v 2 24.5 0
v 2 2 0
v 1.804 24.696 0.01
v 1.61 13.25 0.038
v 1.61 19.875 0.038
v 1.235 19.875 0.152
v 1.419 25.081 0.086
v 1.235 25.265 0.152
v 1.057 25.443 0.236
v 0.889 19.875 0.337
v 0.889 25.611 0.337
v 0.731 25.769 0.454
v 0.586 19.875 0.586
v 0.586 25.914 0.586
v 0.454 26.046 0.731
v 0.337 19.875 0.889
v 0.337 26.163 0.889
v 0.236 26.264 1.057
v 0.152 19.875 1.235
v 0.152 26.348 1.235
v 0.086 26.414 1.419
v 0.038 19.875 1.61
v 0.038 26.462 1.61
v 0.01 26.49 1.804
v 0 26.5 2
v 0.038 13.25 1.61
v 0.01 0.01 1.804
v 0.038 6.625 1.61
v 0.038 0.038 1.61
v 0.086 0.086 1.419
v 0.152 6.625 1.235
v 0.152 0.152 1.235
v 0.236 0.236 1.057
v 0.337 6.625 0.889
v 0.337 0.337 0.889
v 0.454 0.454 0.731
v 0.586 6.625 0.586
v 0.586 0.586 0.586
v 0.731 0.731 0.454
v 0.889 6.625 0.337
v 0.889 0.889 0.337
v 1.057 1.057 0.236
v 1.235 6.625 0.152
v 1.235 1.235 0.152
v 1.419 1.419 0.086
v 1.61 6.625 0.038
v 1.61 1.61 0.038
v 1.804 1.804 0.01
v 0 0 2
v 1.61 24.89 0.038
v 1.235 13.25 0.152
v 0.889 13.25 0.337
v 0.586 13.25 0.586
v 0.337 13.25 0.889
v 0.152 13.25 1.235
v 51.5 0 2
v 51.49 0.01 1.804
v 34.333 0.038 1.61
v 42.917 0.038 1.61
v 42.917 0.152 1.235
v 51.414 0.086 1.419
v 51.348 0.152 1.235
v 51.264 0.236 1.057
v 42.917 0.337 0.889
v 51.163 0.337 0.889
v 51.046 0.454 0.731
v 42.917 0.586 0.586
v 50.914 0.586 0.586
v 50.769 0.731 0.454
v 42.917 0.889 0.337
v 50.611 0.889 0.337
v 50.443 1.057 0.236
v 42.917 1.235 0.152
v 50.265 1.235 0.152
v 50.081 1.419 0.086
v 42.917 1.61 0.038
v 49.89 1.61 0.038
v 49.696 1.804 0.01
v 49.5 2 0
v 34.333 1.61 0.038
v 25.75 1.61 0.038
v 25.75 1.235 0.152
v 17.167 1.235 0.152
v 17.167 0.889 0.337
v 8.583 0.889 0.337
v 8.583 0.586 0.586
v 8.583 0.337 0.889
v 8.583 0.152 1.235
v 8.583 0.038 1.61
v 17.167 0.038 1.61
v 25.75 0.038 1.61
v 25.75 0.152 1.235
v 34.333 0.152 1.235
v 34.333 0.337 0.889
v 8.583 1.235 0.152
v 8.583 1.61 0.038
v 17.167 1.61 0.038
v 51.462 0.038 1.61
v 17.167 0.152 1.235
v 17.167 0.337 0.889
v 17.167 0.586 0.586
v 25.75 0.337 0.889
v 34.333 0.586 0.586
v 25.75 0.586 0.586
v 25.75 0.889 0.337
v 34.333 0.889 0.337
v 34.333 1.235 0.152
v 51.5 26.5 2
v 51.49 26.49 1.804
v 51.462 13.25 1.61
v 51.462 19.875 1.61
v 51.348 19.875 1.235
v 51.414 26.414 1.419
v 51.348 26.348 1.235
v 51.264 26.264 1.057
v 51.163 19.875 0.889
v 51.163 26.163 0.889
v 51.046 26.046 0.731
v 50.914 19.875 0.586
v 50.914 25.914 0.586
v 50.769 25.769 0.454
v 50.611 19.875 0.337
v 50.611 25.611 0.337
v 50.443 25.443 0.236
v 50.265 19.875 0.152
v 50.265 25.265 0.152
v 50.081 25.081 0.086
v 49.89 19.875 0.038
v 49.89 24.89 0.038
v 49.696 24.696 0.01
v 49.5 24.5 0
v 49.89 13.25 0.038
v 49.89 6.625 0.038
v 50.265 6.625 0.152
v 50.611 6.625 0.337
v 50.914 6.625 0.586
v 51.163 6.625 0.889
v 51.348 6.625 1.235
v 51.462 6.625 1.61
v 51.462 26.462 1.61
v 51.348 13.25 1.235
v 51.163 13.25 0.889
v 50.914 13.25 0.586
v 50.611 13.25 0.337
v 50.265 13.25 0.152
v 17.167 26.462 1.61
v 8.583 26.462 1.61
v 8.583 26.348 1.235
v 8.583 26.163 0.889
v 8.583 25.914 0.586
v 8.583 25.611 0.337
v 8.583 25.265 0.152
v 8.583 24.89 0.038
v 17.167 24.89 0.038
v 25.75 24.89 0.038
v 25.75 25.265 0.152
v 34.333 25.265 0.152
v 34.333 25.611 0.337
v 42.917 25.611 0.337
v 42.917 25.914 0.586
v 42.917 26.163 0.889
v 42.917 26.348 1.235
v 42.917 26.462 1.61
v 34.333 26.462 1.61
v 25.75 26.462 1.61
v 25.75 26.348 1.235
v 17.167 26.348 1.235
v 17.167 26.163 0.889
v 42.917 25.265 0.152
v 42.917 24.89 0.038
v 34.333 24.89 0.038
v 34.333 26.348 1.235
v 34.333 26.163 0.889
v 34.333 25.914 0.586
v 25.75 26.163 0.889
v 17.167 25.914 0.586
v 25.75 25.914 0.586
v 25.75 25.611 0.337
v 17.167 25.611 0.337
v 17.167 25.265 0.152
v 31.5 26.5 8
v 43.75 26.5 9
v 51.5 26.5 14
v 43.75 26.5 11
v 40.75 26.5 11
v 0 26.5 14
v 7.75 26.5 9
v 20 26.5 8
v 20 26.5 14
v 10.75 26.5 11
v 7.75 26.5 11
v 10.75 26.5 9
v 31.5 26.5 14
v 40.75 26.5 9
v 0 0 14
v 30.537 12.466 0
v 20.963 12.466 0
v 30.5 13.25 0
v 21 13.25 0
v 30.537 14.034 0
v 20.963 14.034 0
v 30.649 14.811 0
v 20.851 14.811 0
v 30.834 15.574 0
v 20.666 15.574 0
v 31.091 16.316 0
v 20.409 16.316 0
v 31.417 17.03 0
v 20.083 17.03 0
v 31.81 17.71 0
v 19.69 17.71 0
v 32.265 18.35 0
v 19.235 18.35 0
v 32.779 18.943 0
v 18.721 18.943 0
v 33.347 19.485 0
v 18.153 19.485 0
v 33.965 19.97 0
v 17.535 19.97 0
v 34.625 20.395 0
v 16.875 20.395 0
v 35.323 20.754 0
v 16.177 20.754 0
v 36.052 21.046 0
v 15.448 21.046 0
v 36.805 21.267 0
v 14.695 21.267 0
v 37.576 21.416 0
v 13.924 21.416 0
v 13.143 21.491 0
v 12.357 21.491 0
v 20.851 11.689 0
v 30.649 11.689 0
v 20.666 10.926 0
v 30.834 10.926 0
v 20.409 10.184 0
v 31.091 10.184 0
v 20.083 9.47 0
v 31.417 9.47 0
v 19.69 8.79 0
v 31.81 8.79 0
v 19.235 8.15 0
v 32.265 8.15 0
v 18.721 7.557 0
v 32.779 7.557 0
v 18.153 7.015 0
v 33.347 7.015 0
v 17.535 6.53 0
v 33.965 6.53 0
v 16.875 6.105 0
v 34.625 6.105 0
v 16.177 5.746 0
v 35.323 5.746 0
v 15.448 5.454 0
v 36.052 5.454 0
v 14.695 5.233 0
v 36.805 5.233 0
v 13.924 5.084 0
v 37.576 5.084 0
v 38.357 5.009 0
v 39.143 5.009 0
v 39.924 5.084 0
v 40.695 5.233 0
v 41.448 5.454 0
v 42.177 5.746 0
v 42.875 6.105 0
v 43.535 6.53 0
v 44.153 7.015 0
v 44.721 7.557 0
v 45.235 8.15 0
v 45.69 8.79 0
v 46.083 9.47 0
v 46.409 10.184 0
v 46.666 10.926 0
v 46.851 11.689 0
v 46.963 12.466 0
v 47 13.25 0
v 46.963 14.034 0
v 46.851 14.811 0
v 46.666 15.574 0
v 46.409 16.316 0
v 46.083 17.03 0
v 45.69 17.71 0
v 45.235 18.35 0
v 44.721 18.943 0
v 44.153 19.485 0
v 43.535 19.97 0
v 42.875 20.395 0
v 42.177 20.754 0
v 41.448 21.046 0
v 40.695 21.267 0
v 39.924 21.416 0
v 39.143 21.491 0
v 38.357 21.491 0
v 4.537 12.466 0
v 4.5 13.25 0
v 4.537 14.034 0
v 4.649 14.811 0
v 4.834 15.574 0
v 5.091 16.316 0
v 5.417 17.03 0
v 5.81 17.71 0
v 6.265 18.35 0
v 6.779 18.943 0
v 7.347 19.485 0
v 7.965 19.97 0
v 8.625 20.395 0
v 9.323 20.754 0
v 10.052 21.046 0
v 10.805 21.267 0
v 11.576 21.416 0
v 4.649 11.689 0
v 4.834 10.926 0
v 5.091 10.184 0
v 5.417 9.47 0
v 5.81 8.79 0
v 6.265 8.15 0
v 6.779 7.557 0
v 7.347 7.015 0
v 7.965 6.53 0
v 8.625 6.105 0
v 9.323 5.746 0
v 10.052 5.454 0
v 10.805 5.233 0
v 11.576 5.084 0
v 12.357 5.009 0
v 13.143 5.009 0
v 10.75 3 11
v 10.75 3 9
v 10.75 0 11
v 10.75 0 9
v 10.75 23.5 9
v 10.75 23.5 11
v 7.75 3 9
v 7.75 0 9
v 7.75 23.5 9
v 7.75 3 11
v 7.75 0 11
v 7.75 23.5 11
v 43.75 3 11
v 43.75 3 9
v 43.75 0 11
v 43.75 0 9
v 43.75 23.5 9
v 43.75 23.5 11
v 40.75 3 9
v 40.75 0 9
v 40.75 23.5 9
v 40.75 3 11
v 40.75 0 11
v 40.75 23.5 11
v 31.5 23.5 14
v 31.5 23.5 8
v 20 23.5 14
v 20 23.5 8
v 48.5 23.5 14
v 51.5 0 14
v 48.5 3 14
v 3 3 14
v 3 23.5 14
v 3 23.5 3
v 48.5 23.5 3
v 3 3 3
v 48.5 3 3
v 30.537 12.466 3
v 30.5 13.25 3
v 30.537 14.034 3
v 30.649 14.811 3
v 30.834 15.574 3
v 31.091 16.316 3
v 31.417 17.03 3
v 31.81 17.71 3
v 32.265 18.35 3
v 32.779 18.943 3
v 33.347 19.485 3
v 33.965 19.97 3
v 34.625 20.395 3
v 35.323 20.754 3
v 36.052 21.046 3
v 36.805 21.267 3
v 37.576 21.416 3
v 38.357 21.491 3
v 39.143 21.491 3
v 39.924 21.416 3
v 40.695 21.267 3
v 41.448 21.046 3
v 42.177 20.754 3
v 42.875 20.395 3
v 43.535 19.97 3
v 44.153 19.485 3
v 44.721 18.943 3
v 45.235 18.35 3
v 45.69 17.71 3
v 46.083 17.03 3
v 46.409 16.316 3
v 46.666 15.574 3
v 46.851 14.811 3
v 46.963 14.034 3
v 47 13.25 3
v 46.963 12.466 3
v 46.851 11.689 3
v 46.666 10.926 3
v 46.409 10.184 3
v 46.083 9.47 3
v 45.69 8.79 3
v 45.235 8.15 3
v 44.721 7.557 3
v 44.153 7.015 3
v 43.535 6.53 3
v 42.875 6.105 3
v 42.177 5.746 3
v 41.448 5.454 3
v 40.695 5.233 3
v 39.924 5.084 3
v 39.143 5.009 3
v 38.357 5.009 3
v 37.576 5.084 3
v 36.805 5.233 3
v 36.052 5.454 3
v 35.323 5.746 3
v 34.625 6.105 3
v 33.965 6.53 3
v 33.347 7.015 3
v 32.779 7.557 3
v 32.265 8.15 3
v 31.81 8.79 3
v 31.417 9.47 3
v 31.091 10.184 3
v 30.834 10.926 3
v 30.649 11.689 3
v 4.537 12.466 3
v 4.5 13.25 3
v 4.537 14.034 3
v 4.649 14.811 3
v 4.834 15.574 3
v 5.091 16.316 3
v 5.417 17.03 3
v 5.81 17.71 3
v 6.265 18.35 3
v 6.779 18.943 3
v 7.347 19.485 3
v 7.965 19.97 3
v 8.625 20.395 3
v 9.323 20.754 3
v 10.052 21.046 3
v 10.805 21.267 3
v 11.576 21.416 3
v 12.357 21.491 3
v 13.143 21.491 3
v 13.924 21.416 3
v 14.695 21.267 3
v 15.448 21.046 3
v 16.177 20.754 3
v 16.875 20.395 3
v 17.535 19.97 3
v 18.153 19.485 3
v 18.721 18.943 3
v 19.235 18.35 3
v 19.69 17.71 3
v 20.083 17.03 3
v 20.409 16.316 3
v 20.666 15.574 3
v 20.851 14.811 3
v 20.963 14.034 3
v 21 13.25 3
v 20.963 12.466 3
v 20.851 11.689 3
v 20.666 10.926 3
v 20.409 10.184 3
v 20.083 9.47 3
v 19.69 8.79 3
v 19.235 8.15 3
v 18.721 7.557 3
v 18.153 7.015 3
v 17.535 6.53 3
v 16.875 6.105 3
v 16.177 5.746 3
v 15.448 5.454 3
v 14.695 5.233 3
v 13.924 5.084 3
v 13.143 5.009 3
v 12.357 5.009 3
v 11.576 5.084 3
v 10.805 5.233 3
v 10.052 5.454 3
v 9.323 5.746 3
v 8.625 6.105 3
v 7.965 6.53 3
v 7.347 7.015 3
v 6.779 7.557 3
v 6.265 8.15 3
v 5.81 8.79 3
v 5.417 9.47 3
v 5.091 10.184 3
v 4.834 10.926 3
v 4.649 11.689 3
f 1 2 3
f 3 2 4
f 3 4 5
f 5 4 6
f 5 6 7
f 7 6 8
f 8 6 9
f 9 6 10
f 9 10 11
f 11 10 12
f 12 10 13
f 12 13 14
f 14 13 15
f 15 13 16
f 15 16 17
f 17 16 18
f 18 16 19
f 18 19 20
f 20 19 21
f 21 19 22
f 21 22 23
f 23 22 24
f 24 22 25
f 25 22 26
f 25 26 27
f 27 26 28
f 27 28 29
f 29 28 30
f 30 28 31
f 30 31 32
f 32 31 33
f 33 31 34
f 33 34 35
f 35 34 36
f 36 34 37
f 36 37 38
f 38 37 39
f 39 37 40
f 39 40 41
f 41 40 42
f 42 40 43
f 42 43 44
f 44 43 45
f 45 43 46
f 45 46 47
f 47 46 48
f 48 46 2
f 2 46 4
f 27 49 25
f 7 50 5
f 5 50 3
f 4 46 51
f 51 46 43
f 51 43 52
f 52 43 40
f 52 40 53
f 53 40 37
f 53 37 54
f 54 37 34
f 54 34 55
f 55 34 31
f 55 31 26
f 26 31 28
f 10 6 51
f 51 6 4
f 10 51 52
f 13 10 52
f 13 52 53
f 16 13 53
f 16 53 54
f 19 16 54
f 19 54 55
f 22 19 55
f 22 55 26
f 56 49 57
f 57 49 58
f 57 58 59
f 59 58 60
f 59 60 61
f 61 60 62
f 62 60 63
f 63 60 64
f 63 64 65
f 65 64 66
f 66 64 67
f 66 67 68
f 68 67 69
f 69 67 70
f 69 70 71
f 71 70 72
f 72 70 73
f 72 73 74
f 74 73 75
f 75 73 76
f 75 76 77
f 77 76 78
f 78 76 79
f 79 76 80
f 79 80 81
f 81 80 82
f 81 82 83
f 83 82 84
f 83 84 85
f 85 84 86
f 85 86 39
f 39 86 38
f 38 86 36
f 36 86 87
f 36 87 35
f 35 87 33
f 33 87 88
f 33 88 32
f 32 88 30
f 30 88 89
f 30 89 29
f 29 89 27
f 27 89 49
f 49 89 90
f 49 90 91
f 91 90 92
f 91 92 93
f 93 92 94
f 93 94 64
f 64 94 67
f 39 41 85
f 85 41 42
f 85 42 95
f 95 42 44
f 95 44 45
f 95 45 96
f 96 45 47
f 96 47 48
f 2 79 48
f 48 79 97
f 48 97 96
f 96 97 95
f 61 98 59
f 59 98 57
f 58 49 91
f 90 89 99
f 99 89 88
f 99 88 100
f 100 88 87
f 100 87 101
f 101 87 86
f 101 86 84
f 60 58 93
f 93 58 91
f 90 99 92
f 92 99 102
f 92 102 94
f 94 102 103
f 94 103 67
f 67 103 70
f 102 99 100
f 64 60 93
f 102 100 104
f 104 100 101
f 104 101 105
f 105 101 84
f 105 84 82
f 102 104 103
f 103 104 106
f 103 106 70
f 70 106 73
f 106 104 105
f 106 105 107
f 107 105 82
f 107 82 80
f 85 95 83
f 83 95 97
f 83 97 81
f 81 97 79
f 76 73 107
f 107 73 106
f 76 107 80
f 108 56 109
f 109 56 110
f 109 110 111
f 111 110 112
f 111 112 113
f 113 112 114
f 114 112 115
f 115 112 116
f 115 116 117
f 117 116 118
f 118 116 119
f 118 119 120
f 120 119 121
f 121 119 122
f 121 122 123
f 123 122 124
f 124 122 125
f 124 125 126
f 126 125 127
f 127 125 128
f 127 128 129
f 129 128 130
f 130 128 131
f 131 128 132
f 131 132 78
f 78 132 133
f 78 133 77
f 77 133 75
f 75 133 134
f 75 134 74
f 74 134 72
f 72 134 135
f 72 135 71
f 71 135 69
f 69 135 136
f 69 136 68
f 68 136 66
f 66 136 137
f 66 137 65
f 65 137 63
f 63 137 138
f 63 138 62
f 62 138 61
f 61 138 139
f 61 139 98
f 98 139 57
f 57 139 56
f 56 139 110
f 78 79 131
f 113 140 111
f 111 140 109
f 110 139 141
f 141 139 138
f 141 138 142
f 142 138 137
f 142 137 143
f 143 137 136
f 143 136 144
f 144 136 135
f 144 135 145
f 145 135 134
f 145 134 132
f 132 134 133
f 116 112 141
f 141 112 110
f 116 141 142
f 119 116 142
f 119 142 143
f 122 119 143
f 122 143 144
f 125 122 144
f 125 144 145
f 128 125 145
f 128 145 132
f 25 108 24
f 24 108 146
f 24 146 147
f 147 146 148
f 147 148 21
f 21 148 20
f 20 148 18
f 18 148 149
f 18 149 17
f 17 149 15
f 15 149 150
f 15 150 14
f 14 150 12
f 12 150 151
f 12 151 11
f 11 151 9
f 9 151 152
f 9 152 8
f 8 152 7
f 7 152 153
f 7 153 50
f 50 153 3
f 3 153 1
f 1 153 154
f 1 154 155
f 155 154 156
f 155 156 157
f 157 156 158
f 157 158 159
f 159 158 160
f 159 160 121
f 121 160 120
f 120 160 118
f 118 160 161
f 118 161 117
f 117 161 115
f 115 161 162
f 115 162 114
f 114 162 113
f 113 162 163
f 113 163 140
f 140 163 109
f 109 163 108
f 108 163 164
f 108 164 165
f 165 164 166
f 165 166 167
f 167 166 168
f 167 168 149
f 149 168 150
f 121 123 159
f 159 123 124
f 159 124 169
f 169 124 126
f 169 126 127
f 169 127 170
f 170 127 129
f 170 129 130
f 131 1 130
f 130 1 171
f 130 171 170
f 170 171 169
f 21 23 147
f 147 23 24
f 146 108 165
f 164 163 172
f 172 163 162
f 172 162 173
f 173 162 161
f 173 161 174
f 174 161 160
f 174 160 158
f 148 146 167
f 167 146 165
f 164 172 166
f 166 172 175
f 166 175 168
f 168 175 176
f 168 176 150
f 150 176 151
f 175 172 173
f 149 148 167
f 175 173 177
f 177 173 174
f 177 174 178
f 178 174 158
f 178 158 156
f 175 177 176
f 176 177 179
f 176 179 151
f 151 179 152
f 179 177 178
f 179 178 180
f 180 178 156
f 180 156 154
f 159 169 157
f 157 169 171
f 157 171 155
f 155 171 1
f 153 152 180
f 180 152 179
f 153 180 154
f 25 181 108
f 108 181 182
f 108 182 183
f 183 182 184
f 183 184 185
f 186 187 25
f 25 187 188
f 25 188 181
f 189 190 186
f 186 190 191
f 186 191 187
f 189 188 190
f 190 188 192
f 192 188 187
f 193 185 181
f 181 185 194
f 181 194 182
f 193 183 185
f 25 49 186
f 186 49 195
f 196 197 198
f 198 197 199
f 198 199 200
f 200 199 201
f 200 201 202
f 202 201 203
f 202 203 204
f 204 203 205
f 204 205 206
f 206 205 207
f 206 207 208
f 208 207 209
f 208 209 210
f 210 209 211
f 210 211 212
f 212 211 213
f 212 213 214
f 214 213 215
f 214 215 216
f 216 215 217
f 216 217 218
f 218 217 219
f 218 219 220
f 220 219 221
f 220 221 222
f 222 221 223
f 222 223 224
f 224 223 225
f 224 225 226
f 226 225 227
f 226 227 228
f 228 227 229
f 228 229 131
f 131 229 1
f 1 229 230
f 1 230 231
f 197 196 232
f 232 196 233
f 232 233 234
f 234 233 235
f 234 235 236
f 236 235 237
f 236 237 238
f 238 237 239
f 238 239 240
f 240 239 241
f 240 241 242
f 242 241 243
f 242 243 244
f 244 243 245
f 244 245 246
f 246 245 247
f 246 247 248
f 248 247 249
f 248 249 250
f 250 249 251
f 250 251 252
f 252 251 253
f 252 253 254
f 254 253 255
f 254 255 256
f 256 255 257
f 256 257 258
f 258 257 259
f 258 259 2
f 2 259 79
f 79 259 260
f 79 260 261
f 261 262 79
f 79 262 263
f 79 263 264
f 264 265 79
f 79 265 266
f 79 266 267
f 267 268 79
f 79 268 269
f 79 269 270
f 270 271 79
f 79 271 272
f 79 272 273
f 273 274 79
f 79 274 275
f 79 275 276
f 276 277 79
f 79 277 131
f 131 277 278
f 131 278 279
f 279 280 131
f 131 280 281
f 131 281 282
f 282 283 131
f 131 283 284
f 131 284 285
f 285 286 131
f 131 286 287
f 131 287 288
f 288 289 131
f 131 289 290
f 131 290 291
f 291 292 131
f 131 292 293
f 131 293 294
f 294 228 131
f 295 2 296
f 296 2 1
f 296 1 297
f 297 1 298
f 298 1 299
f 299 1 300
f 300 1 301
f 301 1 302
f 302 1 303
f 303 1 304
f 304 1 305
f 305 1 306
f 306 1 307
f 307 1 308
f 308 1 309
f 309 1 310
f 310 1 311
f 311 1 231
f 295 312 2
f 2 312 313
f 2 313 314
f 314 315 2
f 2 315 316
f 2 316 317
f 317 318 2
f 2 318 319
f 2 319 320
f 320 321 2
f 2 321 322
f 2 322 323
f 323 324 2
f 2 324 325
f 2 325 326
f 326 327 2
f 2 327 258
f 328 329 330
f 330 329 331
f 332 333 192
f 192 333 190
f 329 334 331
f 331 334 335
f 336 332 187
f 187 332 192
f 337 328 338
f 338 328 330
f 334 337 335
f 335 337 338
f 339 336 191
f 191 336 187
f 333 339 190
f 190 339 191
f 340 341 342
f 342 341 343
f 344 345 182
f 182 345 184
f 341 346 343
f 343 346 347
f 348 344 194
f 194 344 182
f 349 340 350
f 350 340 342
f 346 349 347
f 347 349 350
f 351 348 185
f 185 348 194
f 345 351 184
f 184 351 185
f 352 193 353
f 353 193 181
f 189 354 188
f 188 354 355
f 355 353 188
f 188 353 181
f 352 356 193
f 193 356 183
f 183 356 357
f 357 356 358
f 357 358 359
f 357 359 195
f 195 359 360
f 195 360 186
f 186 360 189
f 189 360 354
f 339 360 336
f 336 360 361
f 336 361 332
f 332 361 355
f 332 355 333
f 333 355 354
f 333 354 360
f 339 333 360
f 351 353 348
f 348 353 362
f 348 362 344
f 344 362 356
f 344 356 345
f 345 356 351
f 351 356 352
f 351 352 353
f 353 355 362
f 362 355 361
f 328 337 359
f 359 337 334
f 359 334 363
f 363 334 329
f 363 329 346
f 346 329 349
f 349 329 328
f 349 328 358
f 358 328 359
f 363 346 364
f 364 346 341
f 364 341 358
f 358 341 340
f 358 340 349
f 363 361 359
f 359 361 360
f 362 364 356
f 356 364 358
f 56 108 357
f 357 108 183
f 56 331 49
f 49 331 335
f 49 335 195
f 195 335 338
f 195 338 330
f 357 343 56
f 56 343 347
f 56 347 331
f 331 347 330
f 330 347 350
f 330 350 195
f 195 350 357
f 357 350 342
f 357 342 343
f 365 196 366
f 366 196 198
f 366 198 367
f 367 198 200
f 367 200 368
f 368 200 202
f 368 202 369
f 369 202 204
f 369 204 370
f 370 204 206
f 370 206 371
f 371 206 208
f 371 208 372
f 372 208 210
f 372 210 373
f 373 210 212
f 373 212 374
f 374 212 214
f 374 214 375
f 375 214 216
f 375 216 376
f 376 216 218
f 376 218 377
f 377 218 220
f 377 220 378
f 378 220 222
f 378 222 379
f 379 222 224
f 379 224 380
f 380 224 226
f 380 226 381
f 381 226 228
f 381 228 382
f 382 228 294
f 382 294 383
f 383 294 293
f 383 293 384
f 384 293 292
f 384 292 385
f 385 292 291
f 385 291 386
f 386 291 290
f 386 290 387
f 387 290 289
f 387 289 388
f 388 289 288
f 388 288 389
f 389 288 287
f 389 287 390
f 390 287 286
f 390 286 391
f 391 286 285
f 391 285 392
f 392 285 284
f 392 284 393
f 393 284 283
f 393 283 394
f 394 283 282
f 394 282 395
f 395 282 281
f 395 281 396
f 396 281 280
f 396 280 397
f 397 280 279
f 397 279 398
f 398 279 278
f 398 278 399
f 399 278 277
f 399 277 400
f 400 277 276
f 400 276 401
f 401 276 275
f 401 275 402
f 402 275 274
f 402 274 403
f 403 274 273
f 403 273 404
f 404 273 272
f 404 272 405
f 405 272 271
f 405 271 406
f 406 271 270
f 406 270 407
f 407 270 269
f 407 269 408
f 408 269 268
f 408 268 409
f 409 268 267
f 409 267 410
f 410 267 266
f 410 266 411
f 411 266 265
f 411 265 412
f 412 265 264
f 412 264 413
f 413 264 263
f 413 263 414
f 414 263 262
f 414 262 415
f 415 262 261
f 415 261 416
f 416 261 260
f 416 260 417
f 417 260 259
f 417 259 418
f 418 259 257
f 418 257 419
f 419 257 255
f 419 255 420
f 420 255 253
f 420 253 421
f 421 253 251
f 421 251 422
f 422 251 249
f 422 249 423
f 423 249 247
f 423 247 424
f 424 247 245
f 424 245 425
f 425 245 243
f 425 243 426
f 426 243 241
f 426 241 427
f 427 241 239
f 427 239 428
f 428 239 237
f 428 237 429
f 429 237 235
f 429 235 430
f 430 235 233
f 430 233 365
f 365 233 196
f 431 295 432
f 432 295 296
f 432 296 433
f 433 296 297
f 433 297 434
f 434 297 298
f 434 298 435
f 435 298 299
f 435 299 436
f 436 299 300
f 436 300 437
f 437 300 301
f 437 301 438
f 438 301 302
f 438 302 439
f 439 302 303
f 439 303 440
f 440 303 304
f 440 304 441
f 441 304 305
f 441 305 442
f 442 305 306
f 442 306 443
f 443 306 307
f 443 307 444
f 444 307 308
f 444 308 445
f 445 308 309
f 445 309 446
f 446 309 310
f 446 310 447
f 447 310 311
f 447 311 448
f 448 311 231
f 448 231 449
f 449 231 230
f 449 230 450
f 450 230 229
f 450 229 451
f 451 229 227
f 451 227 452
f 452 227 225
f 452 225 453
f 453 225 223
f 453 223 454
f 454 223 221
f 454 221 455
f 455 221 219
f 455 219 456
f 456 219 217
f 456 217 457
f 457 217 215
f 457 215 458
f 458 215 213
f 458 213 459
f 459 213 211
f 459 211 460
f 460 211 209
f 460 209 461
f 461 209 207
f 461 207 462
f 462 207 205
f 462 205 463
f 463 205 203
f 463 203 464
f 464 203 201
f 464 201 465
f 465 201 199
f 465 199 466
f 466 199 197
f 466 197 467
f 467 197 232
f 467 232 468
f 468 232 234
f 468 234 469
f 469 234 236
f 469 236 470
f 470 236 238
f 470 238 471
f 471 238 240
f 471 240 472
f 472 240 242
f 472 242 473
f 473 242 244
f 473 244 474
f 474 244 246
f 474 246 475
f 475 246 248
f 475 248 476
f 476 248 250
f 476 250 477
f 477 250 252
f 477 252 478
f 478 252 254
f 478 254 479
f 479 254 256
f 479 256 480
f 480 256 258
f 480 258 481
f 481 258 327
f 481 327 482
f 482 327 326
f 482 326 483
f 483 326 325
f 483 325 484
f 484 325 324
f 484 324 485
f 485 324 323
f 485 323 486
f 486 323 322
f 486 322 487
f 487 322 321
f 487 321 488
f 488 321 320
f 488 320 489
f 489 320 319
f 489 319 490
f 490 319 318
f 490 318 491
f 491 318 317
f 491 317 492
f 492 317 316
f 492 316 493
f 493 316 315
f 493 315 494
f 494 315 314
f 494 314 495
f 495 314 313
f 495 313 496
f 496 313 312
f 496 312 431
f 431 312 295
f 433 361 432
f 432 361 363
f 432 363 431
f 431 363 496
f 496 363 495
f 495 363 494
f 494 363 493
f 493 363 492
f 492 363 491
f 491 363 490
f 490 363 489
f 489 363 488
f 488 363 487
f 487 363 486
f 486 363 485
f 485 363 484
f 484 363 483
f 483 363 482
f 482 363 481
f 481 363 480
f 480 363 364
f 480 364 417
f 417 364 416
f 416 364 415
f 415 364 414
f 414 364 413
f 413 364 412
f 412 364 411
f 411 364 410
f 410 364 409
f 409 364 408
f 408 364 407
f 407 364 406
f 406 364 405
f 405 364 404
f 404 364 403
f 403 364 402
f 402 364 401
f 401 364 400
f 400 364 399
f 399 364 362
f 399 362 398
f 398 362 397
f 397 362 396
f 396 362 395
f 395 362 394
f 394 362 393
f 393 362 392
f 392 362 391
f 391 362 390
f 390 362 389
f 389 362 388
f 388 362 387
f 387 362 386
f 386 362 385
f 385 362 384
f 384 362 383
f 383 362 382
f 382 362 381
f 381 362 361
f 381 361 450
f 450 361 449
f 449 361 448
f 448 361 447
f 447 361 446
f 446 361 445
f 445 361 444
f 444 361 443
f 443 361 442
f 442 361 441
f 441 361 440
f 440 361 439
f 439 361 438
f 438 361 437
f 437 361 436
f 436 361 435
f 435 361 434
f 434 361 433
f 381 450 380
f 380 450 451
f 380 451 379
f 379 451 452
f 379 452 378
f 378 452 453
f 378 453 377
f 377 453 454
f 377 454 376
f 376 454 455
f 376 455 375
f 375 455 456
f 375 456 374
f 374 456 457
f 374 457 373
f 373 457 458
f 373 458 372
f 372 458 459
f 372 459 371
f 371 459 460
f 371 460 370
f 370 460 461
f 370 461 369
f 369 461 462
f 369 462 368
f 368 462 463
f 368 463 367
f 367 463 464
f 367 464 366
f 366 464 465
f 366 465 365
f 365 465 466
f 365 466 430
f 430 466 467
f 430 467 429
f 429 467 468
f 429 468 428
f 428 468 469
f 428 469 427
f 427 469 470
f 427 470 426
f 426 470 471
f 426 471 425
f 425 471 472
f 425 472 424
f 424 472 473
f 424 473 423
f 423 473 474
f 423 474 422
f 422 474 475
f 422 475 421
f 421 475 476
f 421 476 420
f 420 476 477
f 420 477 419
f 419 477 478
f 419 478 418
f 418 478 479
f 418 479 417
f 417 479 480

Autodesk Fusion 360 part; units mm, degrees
sketch "Sketch1" plane through (0, 0, 0) normal (0, 0, 1) x (1, 0, 0)
  line L0 (0, 0) -> (51.5, 0)
  line L1 (51.5, 0) -> (51.5, 26.5)
  line L2 (51.5, 26.5) -> (0, 26.5)
  line L3 (0, 26.5) -> (0, 0)
  line L4 (3, 3) -> (48.5, 3)
  line L5 (48.5, 3) -> (48.5, 23.5)
  line L6 (48.5, 23.5) -> (3, 23.5)
  line L7 (3, 23.5) -> (3, 3)
  circle A0 centre (12.75, 13.25) radius 8.25
  circle A1 centre (38.75, 13.25) radius 8.25
  dimension "d1" = 51.5
  dimension "d2" = 26.5
  dimension "d3" = -3
  dimension "d4" = 16.5
  dimension "d5" = 16.5
  dimension "d6" = 26
  dimension "d7" = 13.25
  dimension "d8" = 12.75
extrude "Extrude1" add sketch "Sketch1" along normal blind 3 contours L4 L5 L6 L7
extrude "Extrude2" add sketch "Sketch1" along normal blind 14 contours L0 L1 L2 L3
sketch "Sketch2" plane through (0, 0, 14) normal (0, 0, 1) x (-1, 0, 0)
  line L0 (-3, -3) -> (-3, -23.5)
  line L1 (-3, -23.5) -> (-48.5, -23.5)
  line L2 (-48.5, -23.5) -> (-48.5, -3)
  line L3 (-48.5, -3) -> (-3, -3)
  line L4 (0, -26.5) -> (0, 0)
  line L5 (0, 0) -> (-51.5, 0)
  line L6 (-51.5, 0) -> (-51.5, -26.5)
  line L7 (-51.5, -26.5) -> (0, -26.5)
  line L8 (-20, -26.5) -> (-31.5, -26.5)
  line L9 (-31.5, -26.5) -> (-31.5, -23.5)
  line L10 (-31.5, -23.5) -> (-20, -23.5)
  line L11 (-20, -23.5) -> (-20, -26.5)
  dimension "d13" = 20
  dimension "d14" = 20
extrude "Extrude3" cut sketch "Sketch2" against normal blind 6 contours L1 L7 L8 L9 L10 L11
sketch "Sketch3" plane through (0, 0, 0) normal (0, -1, 0) x (1, 0, 0)
  line L0 (0, 0) -> (51.5, 0)
  line L1 (51.5, 0) -> (51.5, 14)
  line L2 (51.5, 14) -> (0, 14)
  line L3 (0, 14) -> (0, 0)
  line L4 (7.75, 11) -> (10.75, 11)
  line L5 (10.75, 11) -> (10.75, 9)
  line L6 (10.75, 9) -> (7.75, 9)
  line L7 (7.75, 9) -> (7.75, 11)
  line L8 (40.75, 11) -> (43.75, 11)
  line L9 (43.75, 11) -> (43.75, 9)
  line L10 (43.75, 9) -> (40.75, 9)
  line L11 (40.75, 9) -> (40.75, 11)
  dimension "d18" = 3
  dimension "d19" = 2
  dimension "d20" = 30
  dimension "d21" = 51.5
  dimension "d22" = 10.75
  dimension "d23" = 3
extrude "Extrude4" cut sketch "Sketch3" against normal up to surface (26.5 mm away) contours L4 L5 L6 L7 | L8 L9 L10 L11
fillet "Fillet1" radius 2 4 edges at (25.75, 0, 0) (0, 13.25, 0) (25.75, 26.5, 0) (51.5, 13.25, 0)
equation "d1 = 45 mm + 3 mm + 3 mm + 0.5 mm"
equation "d2 = 20 mm + 3 mm + 3 mm + 0.5 mm"
equation "d4 = 16 mm + 0.5 mm"
equation "d5 = 16 mm + 0.5 mm"
equation "d7 = d2 / 2"
equation "d8 = ( d1 - d6 ) / 2"
equation "d11 = 10 mm + 3 mm + 1 mm"
equation "d14 = d13"
equation "d22 = ( d21 - d20 ) / 2"
